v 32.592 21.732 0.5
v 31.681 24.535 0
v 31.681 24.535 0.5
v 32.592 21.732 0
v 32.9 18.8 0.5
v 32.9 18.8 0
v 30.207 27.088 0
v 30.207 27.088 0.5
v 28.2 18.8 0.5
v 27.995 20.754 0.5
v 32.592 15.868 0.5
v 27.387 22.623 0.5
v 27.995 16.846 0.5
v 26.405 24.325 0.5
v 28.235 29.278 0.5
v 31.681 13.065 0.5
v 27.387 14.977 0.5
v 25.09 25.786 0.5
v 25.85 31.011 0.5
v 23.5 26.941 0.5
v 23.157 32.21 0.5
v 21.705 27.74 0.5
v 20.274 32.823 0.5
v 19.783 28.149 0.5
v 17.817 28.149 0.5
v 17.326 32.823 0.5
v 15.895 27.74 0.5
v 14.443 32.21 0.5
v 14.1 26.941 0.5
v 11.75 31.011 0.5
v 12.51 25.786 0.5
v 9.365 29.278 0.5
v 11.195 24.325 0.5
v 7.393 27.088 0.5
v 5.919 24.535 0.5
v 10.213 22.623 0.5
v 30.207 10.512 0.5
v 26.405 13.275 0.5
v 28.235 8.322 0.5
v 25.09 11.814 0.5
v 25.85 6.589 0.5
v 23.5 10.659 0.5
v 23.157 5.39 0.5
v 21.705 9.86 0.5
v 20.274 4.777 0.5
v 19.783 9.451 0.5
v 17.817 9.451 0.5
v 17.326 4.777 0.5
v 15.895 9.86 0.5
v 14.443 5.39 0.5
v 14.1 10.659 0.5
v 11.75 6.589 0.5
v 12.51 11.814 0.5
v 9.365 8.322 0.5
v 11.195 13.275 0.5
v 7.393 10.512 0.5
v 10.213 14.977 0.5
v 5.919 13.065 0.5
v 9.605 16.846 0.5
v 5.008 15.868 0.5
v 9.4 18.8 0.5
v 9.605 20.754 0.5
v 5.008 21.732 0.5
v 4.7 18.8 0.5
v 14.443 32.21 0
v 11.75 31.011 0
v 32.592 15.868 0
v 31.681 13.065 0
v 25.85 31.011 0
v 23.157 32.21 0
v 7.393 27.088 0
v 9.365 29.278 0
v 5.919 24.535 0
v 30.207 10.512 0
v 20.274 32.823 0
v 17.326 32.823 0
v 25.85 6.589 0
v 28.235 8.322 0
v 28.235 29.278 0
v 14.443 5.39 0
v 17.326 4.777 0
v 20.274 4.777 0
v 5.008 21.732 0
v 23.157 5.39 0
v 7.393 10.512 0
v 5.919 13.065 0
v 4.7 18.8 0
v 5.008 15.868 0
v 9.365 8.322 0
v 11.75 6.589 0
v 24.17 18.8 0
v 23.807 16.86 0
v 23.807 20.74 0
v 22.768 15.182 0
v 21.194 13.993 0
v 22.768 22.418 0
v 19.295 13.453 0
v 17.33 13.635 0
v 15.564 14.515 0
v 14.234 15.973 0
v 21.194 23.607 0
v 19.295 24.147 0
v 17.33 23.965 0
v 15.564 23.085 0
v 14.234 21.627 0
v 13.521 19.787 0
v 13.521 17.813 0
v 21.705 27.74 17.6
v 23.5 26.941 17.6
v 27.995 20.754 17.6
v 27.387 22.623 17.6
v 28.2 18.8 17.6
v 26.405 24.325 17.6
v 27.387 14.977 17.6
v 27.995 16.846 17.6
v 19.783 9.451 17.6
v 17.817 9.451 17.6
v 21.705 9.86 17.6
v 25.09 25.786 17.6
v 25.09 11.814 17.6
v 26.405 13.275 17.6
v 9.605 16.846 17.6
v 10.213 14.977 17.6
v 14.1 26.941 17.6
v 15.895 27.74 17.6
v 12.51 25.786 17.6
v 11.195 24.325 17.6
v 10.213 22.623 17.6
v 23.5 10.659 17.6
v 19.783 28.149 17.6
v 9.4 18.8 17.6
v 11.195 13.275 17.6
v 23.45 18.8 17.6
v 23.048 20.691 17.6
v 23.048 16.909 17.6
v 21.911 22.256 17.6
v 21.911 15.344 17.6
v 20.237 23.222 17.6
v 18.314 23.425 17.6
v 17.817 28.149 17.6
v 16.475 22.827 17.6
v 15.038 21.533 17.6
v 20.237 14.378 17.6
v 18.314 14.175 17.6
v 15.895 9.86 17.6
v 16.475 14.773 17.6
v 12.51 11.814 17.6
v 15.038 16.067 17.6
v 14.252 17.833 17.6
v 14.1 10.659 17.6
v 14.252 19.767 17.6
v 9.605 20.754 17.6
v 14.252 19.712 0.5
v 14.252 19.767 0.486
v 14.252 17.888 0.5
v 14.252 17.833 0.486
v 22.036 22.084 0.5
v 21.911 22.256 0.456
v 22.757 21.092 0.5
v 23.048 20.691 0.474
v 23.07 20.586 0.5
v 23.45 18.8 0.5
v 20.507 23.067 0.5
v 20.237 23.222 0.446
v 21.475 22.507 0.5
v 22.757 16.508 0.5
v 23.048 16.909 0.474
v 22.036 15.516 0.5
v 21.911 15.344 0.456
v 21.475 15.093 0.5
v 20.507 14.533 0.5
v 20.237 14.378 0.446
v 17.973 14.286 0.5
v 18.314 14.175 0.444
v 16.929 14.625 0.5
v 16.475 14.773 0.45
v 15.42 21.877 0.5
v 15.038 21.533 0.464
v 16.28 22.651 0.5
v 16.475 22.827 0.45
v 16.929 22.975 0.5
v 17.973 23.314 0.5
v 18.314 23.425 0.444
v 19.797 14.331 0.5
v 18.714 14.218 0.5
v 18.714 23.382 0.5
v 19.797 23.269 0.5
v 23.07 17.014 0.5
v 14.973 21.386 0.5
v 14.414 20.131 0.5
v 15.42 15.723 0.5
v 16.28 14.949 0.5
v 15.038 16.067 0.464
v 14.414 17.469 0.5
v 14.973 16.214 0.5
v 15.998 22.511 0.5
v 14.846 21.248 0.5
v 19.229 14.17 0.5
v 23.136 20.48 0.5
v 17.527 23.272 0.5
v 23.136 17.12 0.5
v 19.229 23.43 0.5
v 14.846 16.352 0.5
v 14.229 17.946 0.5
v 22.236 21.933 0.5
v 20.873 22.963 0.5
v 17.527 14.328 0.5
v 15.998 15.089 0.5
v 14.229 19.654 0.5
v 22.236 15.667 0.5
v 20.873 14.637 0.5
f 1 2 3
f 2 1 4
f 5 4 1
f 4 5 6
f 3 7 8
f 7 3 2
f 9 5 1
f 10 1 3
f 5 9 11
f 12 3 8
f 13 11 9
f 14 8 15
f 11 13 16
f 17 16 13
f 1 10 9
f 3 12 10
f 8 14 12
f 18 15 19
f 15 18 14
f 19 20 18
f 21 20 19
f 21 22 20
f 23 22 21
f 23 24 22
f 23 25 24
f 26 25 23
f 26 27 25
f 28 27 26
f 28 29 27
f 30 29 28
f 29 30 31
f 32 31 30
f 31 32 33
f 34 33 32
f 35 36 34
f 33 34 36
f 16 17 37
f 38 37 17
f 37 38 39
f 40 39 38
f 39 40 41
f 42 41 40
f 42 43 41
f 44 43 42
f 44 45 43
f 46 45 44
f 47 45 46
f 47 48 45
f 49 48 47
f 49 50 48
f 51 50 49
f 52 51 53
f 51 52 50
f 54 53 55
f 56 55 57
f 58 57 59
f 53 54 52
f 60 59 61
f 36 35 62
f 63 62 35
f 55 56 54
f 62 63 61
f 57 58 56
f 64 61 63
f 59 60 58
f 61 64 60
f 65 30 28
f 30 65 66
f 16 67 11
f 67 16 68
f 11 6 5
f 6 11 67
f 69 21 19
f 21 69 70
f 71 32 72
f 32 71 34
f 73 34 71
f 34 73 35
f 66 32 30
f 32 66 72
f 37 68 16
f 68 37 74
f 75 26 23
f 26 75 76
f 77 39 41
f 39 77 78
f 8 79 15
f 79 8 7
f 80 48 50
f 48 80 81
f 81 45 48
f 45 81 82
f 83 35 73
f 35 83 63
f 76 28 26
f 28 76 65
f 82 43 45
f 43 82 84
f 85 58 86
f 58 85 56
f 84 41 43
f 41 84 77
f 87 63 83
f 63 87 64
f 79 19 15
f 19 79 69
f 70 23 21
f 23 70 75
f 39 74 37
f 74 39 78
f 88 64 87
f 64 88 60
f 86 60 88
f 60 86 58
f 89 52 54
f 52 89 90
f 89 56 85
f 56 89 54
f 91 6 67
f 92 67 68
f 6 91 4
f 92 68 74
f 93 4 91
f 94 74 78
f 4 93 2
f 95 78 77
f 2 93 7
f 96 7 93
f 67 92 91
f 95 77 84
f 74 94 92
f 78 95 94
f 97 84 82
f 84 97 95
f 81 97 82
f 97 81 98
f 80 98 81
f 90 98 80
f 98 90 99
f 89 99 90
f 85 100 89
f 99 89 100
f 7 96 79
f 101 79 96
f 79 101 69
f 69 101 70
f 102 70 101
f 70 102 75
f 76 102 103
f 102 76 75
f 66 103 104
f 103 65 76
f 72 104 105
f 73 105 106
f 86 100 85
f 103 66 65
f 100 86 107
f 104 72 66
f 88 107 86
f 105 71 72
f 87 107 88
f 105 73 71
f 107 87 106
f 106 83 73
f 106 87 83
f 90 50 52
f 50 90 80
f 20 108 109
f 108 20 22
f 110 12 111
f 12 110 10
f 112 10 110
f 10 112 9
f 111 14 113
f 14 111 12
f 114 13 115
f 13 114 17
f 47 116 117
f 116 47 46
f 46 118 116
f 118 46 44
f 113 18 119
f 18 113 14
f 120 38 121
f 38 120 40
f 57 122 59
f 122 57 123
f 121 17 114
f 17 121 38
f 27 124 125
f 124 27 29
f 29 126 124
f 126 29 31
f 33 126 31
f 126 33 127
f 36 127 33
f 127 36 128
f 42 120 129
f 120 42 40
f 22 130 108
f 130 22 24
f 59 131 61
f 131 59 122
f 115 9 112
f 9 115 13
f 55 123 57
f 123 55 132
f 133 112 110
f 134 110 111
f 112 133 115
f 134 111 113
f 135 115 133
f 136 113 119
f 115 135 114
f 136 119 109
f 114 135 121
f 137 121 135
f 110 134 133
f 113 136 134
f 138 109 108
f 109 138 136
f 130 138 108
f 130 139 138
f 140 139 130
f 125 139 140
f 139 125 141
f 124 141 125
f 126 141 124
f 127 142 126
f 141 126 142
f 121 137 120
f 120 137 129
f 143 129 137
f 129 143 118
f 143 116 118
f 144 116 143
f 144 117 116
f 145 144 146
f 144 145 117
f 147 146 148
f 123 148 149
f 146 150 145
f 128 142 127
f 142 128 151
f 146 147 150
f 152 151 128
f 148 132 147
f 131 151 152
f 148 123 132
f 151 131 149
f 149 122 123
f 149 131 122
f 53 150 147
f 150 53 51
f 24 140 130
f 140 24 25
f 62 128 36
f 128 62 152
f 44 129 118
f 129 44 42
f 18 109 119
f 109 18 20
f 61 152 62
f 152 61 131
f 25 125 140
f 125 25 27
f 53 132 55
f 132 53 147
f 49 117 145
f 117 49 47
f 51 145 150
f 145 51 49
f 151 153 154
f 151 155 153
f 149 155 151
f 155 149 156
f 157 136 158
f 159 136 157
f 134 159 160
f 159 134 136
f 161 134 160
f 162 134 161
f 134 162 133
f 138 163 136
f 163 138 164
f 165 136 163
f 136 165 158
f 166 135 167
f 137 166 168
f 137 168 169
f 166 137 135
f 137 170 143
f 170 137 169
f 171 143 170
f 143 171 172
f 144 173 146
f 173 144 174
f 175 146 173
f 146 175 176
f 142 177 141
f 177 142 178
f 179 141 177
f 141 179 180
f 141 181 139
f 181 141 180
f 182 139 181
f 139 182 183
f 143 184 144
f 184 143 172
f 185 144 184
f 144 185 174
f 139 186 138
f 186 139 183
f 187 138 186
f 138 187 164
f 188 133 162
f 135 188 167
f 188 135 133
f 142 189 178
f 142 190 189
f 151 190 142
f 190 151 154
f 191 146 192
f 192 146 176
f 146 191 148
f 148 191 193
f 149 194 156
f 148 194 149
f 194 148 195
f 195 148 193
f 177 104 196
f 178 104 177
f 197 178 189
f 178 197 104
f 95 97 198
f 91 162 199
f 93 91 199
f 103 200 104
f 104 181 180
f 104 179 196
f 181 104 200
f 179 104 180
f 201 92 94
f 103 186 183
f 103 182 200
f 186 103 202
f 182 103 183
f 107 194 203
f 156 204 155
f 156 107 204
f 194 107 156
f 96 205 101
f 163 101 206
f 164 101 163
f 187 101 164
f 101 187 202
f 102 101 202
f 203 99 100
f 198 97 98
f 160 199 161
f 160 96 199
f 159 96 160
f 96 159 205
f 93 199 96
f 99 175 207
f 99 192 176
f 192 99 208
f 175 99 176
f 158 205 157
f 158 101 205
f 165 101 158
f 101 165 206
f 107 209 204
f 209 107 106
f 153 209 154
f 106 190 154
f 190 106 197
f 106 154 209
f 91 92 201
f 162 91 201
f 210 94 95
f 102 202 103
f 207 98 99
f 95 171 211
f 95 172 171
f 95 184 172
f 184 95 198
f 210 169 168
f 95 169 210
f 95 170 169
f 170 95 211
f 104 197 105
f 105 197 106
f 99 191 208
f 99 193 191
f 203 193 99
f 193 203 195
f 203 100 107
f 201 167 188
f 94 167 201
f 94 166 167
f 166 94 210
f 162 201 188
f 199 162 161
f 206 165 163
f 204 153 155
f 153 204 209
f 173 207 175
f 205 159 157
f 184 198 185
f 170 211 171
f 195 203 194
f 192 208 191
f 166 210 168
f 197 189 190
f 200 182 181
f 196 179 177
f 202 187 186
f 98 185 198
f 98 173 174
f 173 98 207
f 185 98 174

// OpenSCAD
FrameHoleDiameter = 18.8;
DoorHoleDiameter = 9.3;

SensorHeight = 17.1;
SensorDiameter = 9.3;
SensorFlangeDiameter = 10.74;
SensorFlangeHeight = 0.5;

MagnetHeight = 14.35;
MagnetDiameter = 9.36;

LipHeight = 0.5;


// Frame mount
translate([FrameHoleDiameter,FrameHoleDiameter,0])
difference() {
// Main body
union() {
translate([0,0,LipHeight/2])
cylinder(LipHeight, 1.5*FrameHoleDiameter/2, 1.5*FrameHoleDiameter/2, center = true);
translate([0,0,LipHeight+SensorHeight/2])
cylinder(SensorHeight, FrameHoleDiameter/2, FrameHoleDiameter/2, center = true);
}
// Cutouts
translate([0,0,(SensorHeight+1)/2])
cylinder(SensorHeight + 1, SensorDiameter/2, SensorDiameter/2, center = true);

translate([0,0,SensorFlangeHeight/2])
cylinder(SensorFlangeHeight, SensorFlangeDiameter/2, SensorDiameter/2, center = true);
}

/* Not necessary; already the right size
// Door mount
translate([2*FrameHoleDiameter + 2*DoorHoleDiameter,2*DoorHoleDiameter,0])
difference() {
// Main body
union() {
translate([0,0,0.5])
cylinder(1, 1.5*DoorHoleDiameter, 1.5*DoorHoleDiameter, center = true);
translate([0,0,0.5+MagnetHeight/2])
cylinder(SensorHeight, DoorHoleDiameter, DoorHoleDiameter, center = true);
}
// Cutouts
translate([0,0,(MagnetHeight+1)/2])
cylinder(MagnetHeight + 1, MagnetDiameter, MagnetDiameter, center = true);

translate([0,0,0.25])
cylinder(0.5, SensorFlangeDiameter, MagnetDiameter, center = true);
}
*/
